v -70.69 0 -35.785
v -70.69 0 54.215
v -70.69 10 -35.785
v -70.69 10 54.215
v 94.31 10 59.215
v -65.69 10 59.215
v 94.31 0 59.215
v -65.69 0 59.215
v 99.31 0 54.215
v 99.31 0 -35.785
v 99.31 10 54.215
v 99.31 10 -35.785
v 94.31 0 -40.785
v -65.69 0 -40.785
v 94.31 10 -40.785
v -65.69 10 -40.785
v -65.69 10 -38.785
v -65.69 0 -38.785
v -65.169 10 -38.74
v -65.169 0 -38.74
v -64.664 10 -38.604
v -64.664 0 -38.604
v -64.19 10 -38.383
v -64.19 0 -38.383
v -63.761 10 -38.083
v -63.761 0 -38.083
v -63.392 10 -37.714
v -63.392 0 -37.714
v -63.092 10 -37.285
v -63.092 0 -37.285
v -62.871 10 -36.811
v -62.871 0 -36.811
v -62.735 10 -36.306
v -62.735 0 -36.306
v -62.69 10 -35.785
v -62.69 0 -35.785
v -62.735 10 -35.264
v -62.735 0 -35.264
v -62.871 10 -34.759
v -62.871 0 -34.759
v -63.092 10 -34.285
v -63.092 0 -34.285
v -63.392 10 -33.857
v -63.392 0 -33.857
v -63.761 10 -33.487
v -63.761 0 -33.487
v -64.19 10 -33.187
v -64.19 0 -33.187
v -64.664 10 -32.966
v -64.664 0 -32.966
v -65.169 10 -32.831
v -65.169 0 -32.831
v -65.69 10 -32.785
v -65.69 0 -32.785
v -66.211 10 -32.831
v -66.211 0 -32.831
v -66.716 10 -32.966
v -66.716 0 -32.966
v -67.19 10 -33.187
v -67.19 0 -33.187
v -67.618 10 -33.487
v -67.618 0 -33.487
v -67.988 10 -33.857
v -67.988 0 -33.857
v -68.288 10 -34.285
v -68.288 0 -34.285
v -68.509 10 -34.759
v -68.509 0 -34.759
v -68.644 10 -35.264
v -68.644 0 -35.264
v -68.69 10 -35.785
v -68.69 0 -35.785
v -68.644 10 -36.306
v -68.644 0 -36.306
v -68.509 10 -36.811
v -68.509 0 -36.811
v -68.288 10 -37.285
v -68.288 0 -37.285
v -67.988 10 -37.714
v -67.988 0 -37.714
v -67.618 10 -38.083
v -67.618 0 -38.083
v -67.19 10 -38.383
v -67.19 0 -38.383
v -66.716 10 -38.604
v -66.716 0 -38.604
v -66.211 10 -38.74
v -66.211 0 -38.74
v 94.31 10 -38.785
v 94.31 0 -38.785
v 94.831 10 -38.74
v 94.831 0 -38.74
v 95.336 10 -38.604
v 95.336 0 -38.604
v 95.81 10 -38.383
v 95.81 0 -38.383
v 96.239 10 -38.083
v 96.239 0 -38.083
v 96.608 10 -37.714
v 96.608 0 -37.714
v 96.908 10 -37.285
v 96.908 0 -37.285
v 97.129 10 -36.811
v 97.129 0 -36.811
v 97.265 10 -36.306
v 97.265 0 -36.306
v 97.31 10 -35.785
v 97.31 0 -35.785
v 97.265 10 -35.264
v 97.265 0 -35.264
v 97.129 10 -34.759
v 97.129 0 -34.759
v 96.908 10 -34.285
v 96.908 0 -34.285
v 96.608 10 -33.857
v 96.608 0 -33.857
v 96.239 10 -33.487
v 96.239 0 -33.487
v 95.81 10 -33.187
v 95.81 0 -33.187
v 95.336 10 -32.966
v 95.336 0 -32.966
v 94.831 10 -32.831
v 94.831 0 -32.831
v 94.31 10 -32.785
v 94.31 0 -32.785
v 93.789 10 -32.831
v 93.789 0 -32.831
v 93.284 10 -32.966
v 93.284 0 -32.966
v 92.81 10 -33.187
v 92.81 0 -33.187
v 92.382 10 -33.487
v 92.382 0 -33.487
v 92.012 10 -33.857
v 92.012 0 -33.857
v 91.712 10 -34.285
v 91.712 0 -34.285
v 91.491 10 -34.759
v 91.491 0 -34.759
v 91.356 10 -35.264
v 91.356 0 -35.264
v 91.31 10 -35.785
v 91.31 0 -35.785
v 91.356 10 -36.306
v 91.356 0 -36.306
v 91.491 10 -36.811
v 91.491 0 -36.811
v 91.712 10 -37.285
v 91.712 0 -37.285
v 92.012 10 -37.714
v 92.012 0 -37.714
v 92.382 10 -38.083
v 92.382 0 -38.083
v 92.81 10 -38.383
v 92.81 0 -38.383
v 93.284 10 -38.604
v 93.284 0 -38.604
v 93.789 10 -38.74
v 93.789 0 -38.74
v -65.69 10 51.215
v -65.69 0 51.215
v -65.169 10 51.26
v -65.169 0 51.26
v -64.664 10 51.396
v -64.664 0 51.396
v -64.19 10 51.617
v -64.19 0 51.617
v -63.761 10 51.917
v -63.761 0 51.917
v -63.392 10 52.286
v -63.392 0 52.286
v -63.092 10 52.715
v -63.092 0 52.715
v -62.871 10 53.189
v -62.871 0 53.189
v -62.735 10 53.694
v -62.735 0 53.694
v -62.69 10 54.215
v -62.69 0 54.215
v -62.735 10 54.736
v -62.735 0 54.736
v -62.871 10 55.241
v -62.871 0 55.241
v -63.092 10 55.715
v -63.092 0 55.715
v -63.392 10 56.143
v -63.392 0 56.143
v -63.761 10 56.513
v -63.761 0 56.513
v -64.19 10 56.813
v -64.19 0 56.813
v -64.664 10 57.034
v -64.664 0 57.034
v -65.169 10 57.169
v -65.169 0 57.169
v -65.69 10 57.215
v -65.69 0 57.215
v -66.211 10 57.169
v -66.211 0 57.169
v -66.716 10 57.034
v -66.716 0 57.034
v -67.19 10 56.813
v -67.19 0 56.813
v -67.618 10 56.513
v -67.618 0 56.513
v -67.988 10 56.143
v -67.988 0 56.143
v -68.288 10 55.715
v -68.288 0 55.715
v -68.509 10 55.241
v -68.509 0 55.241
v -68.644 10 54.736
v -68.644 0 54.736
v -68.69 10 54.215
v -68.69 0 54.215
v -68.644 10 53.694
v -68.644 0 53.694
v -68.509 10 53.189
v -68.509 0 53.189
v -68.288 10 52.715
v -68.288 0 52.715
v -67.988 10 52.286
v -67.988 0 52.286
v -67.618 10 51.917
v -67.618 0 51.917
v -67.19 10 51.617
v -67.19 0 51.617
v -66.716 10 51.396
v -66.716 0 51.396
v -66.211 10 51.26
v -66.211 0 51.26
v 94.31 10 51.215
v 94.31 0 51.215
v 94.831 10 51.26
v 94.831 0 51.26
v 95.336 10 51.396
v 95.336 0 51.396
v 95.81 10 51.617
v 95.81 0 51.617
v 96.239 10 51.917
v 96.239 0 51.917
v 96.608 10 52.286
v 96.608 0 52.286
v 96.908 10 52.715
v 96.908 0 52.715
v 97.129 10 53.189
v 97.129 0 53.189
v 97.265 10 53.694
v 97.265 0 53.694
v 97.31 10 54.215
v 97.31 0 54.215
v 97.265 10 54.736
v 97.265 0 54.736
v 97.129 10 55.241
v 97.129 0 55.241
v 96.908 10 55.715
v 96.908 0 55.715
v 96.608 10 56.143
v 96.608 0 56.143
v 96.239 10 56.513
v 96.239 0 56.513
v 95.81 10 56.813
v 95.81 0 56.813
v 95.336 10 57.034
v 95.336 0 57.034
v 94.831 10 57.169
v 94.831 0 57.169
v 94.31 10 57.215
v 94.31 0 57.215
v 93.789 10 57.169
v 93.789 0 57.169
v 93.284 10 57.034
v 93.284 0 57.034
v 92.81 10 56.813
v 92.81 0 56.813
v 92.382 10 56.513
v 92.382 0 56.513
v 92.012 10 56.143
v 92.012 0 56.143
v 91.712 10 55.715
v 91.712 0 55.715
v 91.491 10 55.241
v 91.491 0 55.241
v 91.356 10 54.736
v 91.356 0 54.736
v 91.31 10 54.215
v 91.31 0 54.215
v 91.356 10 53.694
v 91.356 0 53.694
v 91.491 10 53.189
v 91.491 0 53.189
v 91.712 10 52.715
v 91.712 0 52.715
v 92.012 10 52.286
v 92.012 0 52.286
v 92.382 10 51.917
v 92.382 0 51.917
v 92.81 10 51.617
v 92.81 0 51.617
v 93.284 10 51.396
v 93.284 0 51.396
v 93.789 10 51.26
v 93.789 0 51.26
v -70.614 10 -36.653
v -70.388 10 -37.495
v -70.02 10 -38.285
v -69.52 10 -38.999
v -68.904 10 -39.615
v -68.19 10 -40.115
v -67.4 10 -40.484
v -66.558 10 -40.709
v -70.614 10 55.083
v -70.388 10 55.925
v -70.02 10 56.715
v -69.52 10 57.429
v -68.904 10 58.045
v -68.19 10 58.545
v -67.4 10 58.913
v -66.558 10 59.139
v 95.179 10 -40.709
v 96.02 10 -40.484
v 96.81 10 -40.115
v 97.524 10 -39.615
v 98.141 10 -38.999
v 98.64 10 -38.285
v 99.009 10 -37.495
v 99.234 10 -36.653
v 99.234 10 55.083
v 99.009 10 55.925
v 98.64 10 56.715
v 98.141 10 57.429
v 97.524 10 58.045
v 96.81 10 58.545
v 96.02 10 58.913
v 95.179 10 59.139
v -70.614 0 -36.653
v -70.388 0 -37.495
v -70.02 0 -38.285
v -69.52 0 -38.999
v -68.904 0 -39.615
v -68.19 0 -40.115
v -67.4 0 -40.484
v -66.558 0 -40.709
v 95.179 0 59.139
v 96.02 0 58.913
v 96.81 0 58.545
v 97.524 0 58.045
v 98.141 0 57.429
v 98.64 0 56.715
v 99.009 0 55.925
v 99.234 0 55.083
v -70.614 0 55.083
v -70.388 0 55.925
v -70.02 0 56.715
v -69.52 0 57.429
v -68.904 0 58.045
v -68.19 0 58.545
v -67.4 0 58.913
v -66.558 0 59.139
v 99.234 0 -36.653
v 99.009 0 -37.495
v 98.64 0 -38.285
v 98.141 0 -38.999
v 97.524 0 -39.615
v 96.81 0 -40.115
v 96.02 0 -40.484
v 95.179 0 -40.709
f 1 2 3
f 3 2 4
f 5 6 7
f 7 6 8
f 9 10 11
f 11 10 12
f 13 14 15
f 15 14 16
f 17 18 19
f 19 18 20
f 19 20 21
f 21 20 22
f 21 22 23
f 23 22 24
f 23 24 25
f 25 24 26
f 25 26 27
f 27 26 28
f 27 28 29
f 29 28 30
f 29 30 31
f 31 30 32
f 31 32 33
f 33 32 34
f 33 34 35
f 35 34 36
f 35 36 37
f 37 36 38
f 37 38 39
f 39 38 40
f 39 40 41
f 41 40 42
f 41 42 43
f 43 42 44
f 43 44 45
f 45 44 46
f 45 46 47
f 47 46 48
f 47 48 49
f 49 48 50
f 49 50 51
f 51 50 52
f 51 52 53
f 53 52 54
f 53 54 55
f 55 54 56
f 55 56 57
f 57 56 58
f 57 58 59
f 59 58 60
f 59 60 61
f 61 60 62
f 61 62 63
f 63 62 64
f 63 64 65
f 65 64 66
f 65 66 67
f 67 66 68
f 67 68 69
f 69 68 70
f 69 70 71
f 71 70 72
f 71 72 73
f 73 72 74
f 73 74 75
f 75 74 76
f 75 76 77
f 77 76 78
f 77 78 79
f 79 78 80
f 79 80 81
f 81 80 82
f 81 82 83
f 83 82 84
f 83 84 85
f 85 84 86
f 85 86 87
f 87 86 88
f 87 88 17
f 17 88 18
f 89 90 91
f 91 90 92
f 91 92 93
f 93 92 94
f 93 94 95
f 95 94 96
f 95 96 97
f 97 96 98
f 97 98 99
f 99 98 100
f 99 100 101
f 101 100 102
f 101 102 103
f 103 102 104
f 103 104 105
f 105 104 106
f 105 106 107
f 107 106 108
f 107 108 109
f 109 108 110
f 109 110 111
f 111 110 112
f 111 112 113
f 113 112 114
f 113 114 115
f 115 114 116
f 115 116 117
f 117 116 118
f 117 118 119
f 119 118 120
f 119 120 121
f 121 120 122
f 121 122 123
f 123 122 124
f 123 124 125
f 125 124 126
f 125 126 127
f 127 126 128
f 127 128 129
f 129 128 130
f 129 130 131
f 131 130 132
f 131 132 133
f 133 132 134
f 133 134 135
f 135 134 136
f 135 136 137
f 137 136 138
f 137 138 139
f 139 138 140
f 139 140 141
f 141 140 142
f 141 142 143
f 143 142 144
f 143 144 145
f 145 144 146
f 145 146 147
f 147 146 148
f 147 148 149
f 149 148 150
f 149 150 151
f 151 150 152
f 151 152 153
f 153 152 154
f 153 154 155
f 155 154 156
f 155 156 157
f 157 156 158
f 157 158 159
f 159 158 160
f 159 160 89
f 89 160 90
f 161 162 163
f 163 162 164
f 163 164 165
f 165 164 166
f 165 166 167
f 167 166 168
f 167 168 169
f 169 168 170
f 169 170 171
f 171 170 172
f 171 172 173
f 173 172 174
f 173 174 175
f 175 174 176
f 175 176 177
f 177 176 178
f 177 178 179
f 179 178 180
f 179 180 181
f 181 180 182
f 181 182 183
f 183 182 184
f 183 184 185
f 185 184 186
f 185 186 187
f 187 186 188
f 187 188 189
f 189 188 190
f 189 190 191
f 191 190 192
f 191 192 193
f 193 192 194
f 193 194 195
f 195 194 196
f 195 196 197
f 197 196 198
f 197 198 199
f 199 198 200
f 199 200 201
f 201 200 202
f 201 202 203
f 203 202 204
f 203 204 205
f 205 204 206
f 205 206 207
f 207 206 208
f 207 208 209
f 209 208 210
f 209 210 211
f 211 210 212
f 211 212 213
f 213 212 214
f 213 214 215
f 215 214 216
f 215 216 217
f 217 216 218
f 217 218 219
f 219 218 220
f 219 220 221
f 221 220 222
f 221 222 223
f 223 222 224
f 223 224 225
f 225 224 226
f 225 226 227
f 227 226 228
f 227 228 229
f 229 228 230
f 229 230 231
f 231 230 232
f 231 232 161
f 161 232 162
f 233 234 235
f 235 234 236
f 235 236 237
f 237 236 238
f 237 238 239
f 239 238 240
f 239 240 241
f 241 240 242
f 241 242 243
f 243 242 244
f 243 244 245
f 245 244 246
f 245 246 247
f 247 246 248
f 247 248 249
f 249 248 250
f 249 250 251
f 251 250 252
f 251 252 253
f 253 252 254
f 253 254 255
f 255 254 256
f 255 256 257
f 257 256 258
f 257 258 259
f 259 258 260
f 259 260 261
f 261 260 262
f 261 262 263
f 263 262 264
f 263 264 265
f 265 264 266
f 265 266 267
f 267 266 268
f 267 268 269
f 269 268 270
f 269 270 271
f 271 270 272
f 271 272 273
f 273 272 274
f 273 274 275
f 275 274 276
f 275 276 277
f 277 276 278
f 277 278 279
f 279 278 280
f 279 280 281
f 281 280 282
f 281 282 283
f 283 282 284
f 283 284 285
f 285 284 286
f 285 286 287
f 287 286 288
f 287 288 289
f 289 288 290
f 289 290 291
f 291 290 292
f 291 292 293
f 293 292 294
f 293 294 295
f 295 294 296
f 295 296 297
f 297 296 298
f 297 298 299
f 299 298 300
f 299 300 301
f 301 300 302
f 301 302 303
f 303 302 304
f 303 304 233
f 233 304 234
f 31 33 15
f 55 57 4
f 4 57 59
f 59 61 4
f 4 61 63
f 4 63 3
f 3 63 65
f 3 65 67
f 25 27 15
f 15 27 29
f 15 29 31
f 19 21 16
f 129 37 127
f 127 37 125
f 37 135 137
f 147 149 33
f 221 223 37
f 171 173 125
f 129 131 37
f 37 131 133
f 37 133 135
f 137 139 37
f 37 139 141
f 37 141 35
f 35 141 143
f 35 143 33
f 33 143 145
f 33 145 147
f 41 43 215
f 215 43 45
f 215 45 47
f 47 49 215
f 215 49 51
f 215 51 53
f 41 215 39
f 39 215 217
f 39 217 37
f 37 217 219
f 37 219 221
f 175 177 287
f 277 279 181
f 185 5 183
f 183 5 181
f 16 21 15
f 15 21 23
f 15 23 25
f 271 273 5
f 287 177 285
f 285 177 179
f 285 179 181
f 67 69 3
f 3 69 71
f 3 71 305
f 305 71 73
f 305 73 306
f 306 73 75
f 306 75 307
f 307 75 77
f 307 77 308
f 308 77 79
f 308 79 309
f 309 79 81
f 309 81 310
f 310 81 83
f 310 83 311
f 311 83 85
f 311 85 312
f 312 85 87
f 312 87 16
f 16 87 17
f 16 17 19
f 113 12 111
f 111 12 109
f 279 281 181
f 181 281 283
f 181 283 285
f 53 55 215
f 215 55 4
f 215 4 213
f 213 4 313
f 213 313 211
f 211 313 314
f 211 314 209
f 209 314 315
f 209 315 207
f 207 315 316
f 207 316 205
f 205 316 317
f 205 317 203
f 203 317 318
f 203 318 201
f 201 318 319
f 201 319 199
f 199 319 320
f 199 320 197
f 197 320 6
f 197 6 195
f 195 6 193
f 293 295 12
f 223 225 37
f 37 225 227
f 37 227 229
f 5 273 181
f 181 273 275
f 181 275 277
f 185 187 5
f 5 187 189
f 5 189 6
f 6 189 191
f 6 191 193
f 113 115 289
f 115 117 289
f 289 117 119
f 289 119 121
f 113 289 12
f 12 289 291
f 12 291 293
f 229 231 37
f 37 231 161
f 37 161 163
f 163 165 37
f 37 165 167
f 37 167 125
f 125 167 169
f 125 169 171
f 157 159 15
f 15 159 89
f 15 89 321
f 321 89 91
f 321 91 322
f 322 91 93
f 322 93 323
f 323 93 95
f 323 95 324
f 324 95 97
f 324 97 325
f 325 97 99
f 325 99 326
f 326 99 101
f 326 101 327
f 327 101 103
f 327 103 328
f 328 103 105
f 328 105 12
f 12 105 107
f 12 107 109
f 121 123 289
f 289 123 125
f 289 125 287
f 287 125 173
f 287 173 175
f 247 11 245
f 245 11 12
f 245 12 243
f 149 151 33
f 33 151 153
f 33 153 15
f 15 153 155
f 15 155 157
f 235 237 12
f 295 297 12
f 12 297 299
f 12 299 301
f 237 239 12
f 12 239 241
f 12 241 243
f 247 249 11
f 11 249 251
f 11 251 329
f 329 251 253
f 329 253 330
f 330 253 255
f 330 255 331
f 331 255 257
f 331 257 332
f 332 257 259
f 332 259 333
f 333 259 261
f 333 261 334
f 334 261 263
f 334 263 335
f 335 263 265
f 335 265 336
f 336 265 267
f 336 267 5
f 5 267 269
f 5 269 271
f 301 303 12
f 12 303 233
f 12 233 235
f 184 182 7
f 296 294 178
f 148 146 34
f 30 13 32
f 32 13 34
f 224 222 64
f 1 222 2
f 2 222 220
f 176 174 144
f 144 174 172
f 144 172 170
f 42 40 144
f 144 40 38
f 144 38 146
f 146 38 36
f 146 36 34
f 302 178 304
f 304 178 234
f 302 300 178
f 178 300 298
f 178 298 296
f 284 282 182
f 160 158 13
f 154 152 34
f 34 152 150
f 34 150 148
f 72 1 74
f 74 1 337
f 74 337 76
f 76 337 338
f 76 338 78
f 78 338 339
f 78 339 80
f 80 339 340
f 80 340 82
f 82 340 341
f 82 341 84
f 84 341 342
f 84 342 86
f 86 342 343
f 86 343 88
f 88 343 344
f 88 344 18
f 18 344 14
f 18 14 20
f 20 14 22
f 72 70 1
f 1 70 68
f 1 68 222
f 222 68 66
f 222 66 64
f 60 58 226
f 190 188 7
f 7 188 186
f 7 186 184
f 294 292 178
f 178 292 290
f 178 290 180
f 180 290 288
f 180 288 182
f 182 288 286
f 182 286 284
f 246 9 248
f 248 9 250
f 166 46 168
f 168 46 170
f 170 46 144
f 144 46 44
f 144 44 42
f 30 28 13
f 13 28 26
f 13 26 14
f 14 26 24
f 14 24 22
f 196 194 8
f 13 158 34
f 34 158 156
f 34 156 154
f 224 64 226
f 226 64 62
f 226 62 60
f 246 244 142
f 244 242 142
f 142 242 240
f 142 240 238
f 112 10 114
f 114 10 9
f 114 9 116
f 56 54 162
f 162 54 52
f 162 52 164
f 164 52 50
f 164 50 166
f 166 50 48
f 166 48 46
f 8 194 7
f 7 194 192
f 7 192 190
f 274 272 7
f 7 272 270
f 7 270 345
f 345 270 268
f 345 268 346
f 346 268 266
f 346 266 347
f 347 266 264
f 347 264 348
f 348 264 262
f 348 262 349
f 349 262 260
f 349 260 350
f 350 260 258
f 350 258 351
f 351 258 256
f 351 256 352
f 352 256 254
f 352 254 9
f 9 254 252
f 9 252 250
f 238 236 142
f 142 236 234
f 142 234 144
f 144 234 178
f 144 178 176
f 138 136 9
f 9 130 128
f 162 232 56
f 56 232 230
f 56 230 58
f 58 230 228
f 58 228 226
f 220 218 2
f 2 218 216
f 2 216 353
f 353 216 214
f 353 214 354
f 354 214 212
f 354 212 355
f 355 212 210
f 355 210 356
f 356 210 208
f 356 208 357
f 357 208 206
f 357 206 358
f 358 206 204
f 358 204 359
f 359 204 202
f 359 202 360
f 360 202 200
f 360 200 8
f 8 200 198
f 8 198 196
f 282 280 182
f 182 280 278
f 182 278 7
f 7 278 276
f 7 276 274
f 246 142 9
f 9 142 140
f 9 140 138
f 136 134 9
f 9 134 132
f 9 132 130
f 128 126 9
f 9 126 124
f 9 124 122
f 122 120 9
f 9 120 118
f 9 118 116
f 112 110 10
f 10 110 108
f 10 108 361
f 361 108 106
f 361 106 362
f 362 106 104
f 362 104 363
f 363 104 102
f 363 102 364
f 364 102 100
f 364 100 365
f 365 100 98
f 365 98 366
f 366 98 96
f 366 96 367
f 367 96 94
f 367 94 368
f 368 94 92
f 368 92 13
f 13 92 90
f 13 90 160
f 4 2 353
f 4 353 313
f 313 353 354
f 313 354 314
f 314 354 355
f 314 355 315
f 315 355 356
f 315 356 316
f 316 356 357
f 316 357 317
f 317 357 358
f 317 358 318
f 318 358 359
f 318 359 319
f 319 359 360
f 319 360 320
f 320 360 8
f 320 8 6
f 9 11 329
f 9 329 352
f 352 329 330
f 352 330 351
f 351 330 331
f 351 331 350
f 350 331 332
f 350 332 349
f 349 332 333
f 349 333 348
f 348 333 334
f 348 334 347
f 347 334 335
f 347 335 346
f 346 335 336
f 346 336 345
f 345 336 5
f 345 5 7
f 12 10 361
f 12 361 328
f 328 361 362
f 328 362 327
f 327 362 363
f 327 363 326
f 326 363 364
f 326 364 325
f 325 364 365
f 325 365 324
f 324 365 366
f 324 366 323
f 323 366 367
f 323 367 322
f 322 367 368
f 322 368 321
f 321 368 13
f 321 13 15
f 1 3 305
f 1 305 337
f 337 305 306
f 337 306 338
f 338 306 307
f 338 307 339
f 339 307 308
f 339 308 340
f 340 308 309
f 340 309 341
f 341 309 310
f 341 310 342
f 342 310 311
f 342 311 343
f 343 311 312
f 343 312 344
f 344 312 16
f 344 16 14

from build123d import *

# Parameters (mm, degrees)
SKETCH1_R           = 3
BOSS_EXTRUDE2_DEPTH = 10
FILLET1_R           = 5
FILLET2_R           = 5


with BuildPart() as part:
    # Sketch1 → Boss-Extrude2 (new body)
    # profile 1 of 2: a face of its own
    with BuildSketch(Plane(origin=(0, 0, 0), x_dir=(1, 0, 0), z_dir=(0, 1, 0))):
        with BuildLine():
            Line((99.310351883, 40.78525027), (-70.689648117, 40.78525027))
            Line((-70.689648117, 40.78525027), (-70.689648117, -54.21474973))
            Line((-70.689648117, -54.21474973), (-68.689648117, -54.21474973))
            ThreePointArc((-68.689648117, -54.21474973), (-65.689648117, -51.21474973), (-62.689648117, -54.21474973))
            ThreePointArc((-62.689648117, -54.21474973), (-63.568327773, -56.336070073), (-65.689648117, -57.21474973))
            Line((-65.689648117, -57.21474973), (-65.689648117, -59.21474973))
            Line((-65.689648117, -59.21474973), (99.310351883, -59.21474973))
            Line((99.310351883, -59.21474973), (99.310351883, 40.78525027))
        make_face()
        with Locations(Location((94.310351883, -54.21474973, 0), (0, 0, 270))):
            Circle(SKETCH1_R, mode=Mode.SUBTRACT)
        with Locations(Location((-65.689648117, 35.78525027, 0), (0, 0, 270))):
            Circle(SKETCH1_R, mode=Mode.SUBTRACT)
        with Locations(Location((94.310351883, 35.78525027, 0), (0, 0, 270))):
            Circle(SKETCH1_R, mode=Mode.SUBTRACT)
    # profile 2 of 2: a face of its own
    with BuildSketch(Plane(origin=(0, 0, 0), x_dir=(1, 0, 0), z_dir=(0, 1, 0))):
        with BuildLine():
            Line((-68.689648117, -54.21474973), (-70.689648117, -54.21474973))
            Line((-70.689648117, -54.21474973), (-70.689648117, -59.21474973))
            Line((-70.689648117, -59.21474973), (-65.689648117, -59.21474973))
            Line((-65.689648117, -59.21474973), (-65.689648117, -57.21474973))
            ThreePointArc((-65.689648117, -57.21474973), (-67.81096846, -56.336070073), (-68.689648117, -54.21474973))
        make_face()
    extrude(amount=BOSS_EXTRUDE2_DEPTH)

    # Fillet1
    fillet1_edges = [part.edges().sort_by_distance(p)[0] for p in [
        (-70.689648117, 5, 59.21474973),
    ]]
    fillet(fillet1_edges, radius=FILLET1_R)

    # Fillet2
    fillet2_edges = [part.edges().sort_by_distance(p)[0] for p in [
        (-70.689648117, 5, -40.78525027),
        (99.310351883, 5, -40.78525027),
        (99.310351883, 5, 59.21474973),
    ]]
    fillet(fillet2_edges, radius=FILLET2_R)


solid = part.part
